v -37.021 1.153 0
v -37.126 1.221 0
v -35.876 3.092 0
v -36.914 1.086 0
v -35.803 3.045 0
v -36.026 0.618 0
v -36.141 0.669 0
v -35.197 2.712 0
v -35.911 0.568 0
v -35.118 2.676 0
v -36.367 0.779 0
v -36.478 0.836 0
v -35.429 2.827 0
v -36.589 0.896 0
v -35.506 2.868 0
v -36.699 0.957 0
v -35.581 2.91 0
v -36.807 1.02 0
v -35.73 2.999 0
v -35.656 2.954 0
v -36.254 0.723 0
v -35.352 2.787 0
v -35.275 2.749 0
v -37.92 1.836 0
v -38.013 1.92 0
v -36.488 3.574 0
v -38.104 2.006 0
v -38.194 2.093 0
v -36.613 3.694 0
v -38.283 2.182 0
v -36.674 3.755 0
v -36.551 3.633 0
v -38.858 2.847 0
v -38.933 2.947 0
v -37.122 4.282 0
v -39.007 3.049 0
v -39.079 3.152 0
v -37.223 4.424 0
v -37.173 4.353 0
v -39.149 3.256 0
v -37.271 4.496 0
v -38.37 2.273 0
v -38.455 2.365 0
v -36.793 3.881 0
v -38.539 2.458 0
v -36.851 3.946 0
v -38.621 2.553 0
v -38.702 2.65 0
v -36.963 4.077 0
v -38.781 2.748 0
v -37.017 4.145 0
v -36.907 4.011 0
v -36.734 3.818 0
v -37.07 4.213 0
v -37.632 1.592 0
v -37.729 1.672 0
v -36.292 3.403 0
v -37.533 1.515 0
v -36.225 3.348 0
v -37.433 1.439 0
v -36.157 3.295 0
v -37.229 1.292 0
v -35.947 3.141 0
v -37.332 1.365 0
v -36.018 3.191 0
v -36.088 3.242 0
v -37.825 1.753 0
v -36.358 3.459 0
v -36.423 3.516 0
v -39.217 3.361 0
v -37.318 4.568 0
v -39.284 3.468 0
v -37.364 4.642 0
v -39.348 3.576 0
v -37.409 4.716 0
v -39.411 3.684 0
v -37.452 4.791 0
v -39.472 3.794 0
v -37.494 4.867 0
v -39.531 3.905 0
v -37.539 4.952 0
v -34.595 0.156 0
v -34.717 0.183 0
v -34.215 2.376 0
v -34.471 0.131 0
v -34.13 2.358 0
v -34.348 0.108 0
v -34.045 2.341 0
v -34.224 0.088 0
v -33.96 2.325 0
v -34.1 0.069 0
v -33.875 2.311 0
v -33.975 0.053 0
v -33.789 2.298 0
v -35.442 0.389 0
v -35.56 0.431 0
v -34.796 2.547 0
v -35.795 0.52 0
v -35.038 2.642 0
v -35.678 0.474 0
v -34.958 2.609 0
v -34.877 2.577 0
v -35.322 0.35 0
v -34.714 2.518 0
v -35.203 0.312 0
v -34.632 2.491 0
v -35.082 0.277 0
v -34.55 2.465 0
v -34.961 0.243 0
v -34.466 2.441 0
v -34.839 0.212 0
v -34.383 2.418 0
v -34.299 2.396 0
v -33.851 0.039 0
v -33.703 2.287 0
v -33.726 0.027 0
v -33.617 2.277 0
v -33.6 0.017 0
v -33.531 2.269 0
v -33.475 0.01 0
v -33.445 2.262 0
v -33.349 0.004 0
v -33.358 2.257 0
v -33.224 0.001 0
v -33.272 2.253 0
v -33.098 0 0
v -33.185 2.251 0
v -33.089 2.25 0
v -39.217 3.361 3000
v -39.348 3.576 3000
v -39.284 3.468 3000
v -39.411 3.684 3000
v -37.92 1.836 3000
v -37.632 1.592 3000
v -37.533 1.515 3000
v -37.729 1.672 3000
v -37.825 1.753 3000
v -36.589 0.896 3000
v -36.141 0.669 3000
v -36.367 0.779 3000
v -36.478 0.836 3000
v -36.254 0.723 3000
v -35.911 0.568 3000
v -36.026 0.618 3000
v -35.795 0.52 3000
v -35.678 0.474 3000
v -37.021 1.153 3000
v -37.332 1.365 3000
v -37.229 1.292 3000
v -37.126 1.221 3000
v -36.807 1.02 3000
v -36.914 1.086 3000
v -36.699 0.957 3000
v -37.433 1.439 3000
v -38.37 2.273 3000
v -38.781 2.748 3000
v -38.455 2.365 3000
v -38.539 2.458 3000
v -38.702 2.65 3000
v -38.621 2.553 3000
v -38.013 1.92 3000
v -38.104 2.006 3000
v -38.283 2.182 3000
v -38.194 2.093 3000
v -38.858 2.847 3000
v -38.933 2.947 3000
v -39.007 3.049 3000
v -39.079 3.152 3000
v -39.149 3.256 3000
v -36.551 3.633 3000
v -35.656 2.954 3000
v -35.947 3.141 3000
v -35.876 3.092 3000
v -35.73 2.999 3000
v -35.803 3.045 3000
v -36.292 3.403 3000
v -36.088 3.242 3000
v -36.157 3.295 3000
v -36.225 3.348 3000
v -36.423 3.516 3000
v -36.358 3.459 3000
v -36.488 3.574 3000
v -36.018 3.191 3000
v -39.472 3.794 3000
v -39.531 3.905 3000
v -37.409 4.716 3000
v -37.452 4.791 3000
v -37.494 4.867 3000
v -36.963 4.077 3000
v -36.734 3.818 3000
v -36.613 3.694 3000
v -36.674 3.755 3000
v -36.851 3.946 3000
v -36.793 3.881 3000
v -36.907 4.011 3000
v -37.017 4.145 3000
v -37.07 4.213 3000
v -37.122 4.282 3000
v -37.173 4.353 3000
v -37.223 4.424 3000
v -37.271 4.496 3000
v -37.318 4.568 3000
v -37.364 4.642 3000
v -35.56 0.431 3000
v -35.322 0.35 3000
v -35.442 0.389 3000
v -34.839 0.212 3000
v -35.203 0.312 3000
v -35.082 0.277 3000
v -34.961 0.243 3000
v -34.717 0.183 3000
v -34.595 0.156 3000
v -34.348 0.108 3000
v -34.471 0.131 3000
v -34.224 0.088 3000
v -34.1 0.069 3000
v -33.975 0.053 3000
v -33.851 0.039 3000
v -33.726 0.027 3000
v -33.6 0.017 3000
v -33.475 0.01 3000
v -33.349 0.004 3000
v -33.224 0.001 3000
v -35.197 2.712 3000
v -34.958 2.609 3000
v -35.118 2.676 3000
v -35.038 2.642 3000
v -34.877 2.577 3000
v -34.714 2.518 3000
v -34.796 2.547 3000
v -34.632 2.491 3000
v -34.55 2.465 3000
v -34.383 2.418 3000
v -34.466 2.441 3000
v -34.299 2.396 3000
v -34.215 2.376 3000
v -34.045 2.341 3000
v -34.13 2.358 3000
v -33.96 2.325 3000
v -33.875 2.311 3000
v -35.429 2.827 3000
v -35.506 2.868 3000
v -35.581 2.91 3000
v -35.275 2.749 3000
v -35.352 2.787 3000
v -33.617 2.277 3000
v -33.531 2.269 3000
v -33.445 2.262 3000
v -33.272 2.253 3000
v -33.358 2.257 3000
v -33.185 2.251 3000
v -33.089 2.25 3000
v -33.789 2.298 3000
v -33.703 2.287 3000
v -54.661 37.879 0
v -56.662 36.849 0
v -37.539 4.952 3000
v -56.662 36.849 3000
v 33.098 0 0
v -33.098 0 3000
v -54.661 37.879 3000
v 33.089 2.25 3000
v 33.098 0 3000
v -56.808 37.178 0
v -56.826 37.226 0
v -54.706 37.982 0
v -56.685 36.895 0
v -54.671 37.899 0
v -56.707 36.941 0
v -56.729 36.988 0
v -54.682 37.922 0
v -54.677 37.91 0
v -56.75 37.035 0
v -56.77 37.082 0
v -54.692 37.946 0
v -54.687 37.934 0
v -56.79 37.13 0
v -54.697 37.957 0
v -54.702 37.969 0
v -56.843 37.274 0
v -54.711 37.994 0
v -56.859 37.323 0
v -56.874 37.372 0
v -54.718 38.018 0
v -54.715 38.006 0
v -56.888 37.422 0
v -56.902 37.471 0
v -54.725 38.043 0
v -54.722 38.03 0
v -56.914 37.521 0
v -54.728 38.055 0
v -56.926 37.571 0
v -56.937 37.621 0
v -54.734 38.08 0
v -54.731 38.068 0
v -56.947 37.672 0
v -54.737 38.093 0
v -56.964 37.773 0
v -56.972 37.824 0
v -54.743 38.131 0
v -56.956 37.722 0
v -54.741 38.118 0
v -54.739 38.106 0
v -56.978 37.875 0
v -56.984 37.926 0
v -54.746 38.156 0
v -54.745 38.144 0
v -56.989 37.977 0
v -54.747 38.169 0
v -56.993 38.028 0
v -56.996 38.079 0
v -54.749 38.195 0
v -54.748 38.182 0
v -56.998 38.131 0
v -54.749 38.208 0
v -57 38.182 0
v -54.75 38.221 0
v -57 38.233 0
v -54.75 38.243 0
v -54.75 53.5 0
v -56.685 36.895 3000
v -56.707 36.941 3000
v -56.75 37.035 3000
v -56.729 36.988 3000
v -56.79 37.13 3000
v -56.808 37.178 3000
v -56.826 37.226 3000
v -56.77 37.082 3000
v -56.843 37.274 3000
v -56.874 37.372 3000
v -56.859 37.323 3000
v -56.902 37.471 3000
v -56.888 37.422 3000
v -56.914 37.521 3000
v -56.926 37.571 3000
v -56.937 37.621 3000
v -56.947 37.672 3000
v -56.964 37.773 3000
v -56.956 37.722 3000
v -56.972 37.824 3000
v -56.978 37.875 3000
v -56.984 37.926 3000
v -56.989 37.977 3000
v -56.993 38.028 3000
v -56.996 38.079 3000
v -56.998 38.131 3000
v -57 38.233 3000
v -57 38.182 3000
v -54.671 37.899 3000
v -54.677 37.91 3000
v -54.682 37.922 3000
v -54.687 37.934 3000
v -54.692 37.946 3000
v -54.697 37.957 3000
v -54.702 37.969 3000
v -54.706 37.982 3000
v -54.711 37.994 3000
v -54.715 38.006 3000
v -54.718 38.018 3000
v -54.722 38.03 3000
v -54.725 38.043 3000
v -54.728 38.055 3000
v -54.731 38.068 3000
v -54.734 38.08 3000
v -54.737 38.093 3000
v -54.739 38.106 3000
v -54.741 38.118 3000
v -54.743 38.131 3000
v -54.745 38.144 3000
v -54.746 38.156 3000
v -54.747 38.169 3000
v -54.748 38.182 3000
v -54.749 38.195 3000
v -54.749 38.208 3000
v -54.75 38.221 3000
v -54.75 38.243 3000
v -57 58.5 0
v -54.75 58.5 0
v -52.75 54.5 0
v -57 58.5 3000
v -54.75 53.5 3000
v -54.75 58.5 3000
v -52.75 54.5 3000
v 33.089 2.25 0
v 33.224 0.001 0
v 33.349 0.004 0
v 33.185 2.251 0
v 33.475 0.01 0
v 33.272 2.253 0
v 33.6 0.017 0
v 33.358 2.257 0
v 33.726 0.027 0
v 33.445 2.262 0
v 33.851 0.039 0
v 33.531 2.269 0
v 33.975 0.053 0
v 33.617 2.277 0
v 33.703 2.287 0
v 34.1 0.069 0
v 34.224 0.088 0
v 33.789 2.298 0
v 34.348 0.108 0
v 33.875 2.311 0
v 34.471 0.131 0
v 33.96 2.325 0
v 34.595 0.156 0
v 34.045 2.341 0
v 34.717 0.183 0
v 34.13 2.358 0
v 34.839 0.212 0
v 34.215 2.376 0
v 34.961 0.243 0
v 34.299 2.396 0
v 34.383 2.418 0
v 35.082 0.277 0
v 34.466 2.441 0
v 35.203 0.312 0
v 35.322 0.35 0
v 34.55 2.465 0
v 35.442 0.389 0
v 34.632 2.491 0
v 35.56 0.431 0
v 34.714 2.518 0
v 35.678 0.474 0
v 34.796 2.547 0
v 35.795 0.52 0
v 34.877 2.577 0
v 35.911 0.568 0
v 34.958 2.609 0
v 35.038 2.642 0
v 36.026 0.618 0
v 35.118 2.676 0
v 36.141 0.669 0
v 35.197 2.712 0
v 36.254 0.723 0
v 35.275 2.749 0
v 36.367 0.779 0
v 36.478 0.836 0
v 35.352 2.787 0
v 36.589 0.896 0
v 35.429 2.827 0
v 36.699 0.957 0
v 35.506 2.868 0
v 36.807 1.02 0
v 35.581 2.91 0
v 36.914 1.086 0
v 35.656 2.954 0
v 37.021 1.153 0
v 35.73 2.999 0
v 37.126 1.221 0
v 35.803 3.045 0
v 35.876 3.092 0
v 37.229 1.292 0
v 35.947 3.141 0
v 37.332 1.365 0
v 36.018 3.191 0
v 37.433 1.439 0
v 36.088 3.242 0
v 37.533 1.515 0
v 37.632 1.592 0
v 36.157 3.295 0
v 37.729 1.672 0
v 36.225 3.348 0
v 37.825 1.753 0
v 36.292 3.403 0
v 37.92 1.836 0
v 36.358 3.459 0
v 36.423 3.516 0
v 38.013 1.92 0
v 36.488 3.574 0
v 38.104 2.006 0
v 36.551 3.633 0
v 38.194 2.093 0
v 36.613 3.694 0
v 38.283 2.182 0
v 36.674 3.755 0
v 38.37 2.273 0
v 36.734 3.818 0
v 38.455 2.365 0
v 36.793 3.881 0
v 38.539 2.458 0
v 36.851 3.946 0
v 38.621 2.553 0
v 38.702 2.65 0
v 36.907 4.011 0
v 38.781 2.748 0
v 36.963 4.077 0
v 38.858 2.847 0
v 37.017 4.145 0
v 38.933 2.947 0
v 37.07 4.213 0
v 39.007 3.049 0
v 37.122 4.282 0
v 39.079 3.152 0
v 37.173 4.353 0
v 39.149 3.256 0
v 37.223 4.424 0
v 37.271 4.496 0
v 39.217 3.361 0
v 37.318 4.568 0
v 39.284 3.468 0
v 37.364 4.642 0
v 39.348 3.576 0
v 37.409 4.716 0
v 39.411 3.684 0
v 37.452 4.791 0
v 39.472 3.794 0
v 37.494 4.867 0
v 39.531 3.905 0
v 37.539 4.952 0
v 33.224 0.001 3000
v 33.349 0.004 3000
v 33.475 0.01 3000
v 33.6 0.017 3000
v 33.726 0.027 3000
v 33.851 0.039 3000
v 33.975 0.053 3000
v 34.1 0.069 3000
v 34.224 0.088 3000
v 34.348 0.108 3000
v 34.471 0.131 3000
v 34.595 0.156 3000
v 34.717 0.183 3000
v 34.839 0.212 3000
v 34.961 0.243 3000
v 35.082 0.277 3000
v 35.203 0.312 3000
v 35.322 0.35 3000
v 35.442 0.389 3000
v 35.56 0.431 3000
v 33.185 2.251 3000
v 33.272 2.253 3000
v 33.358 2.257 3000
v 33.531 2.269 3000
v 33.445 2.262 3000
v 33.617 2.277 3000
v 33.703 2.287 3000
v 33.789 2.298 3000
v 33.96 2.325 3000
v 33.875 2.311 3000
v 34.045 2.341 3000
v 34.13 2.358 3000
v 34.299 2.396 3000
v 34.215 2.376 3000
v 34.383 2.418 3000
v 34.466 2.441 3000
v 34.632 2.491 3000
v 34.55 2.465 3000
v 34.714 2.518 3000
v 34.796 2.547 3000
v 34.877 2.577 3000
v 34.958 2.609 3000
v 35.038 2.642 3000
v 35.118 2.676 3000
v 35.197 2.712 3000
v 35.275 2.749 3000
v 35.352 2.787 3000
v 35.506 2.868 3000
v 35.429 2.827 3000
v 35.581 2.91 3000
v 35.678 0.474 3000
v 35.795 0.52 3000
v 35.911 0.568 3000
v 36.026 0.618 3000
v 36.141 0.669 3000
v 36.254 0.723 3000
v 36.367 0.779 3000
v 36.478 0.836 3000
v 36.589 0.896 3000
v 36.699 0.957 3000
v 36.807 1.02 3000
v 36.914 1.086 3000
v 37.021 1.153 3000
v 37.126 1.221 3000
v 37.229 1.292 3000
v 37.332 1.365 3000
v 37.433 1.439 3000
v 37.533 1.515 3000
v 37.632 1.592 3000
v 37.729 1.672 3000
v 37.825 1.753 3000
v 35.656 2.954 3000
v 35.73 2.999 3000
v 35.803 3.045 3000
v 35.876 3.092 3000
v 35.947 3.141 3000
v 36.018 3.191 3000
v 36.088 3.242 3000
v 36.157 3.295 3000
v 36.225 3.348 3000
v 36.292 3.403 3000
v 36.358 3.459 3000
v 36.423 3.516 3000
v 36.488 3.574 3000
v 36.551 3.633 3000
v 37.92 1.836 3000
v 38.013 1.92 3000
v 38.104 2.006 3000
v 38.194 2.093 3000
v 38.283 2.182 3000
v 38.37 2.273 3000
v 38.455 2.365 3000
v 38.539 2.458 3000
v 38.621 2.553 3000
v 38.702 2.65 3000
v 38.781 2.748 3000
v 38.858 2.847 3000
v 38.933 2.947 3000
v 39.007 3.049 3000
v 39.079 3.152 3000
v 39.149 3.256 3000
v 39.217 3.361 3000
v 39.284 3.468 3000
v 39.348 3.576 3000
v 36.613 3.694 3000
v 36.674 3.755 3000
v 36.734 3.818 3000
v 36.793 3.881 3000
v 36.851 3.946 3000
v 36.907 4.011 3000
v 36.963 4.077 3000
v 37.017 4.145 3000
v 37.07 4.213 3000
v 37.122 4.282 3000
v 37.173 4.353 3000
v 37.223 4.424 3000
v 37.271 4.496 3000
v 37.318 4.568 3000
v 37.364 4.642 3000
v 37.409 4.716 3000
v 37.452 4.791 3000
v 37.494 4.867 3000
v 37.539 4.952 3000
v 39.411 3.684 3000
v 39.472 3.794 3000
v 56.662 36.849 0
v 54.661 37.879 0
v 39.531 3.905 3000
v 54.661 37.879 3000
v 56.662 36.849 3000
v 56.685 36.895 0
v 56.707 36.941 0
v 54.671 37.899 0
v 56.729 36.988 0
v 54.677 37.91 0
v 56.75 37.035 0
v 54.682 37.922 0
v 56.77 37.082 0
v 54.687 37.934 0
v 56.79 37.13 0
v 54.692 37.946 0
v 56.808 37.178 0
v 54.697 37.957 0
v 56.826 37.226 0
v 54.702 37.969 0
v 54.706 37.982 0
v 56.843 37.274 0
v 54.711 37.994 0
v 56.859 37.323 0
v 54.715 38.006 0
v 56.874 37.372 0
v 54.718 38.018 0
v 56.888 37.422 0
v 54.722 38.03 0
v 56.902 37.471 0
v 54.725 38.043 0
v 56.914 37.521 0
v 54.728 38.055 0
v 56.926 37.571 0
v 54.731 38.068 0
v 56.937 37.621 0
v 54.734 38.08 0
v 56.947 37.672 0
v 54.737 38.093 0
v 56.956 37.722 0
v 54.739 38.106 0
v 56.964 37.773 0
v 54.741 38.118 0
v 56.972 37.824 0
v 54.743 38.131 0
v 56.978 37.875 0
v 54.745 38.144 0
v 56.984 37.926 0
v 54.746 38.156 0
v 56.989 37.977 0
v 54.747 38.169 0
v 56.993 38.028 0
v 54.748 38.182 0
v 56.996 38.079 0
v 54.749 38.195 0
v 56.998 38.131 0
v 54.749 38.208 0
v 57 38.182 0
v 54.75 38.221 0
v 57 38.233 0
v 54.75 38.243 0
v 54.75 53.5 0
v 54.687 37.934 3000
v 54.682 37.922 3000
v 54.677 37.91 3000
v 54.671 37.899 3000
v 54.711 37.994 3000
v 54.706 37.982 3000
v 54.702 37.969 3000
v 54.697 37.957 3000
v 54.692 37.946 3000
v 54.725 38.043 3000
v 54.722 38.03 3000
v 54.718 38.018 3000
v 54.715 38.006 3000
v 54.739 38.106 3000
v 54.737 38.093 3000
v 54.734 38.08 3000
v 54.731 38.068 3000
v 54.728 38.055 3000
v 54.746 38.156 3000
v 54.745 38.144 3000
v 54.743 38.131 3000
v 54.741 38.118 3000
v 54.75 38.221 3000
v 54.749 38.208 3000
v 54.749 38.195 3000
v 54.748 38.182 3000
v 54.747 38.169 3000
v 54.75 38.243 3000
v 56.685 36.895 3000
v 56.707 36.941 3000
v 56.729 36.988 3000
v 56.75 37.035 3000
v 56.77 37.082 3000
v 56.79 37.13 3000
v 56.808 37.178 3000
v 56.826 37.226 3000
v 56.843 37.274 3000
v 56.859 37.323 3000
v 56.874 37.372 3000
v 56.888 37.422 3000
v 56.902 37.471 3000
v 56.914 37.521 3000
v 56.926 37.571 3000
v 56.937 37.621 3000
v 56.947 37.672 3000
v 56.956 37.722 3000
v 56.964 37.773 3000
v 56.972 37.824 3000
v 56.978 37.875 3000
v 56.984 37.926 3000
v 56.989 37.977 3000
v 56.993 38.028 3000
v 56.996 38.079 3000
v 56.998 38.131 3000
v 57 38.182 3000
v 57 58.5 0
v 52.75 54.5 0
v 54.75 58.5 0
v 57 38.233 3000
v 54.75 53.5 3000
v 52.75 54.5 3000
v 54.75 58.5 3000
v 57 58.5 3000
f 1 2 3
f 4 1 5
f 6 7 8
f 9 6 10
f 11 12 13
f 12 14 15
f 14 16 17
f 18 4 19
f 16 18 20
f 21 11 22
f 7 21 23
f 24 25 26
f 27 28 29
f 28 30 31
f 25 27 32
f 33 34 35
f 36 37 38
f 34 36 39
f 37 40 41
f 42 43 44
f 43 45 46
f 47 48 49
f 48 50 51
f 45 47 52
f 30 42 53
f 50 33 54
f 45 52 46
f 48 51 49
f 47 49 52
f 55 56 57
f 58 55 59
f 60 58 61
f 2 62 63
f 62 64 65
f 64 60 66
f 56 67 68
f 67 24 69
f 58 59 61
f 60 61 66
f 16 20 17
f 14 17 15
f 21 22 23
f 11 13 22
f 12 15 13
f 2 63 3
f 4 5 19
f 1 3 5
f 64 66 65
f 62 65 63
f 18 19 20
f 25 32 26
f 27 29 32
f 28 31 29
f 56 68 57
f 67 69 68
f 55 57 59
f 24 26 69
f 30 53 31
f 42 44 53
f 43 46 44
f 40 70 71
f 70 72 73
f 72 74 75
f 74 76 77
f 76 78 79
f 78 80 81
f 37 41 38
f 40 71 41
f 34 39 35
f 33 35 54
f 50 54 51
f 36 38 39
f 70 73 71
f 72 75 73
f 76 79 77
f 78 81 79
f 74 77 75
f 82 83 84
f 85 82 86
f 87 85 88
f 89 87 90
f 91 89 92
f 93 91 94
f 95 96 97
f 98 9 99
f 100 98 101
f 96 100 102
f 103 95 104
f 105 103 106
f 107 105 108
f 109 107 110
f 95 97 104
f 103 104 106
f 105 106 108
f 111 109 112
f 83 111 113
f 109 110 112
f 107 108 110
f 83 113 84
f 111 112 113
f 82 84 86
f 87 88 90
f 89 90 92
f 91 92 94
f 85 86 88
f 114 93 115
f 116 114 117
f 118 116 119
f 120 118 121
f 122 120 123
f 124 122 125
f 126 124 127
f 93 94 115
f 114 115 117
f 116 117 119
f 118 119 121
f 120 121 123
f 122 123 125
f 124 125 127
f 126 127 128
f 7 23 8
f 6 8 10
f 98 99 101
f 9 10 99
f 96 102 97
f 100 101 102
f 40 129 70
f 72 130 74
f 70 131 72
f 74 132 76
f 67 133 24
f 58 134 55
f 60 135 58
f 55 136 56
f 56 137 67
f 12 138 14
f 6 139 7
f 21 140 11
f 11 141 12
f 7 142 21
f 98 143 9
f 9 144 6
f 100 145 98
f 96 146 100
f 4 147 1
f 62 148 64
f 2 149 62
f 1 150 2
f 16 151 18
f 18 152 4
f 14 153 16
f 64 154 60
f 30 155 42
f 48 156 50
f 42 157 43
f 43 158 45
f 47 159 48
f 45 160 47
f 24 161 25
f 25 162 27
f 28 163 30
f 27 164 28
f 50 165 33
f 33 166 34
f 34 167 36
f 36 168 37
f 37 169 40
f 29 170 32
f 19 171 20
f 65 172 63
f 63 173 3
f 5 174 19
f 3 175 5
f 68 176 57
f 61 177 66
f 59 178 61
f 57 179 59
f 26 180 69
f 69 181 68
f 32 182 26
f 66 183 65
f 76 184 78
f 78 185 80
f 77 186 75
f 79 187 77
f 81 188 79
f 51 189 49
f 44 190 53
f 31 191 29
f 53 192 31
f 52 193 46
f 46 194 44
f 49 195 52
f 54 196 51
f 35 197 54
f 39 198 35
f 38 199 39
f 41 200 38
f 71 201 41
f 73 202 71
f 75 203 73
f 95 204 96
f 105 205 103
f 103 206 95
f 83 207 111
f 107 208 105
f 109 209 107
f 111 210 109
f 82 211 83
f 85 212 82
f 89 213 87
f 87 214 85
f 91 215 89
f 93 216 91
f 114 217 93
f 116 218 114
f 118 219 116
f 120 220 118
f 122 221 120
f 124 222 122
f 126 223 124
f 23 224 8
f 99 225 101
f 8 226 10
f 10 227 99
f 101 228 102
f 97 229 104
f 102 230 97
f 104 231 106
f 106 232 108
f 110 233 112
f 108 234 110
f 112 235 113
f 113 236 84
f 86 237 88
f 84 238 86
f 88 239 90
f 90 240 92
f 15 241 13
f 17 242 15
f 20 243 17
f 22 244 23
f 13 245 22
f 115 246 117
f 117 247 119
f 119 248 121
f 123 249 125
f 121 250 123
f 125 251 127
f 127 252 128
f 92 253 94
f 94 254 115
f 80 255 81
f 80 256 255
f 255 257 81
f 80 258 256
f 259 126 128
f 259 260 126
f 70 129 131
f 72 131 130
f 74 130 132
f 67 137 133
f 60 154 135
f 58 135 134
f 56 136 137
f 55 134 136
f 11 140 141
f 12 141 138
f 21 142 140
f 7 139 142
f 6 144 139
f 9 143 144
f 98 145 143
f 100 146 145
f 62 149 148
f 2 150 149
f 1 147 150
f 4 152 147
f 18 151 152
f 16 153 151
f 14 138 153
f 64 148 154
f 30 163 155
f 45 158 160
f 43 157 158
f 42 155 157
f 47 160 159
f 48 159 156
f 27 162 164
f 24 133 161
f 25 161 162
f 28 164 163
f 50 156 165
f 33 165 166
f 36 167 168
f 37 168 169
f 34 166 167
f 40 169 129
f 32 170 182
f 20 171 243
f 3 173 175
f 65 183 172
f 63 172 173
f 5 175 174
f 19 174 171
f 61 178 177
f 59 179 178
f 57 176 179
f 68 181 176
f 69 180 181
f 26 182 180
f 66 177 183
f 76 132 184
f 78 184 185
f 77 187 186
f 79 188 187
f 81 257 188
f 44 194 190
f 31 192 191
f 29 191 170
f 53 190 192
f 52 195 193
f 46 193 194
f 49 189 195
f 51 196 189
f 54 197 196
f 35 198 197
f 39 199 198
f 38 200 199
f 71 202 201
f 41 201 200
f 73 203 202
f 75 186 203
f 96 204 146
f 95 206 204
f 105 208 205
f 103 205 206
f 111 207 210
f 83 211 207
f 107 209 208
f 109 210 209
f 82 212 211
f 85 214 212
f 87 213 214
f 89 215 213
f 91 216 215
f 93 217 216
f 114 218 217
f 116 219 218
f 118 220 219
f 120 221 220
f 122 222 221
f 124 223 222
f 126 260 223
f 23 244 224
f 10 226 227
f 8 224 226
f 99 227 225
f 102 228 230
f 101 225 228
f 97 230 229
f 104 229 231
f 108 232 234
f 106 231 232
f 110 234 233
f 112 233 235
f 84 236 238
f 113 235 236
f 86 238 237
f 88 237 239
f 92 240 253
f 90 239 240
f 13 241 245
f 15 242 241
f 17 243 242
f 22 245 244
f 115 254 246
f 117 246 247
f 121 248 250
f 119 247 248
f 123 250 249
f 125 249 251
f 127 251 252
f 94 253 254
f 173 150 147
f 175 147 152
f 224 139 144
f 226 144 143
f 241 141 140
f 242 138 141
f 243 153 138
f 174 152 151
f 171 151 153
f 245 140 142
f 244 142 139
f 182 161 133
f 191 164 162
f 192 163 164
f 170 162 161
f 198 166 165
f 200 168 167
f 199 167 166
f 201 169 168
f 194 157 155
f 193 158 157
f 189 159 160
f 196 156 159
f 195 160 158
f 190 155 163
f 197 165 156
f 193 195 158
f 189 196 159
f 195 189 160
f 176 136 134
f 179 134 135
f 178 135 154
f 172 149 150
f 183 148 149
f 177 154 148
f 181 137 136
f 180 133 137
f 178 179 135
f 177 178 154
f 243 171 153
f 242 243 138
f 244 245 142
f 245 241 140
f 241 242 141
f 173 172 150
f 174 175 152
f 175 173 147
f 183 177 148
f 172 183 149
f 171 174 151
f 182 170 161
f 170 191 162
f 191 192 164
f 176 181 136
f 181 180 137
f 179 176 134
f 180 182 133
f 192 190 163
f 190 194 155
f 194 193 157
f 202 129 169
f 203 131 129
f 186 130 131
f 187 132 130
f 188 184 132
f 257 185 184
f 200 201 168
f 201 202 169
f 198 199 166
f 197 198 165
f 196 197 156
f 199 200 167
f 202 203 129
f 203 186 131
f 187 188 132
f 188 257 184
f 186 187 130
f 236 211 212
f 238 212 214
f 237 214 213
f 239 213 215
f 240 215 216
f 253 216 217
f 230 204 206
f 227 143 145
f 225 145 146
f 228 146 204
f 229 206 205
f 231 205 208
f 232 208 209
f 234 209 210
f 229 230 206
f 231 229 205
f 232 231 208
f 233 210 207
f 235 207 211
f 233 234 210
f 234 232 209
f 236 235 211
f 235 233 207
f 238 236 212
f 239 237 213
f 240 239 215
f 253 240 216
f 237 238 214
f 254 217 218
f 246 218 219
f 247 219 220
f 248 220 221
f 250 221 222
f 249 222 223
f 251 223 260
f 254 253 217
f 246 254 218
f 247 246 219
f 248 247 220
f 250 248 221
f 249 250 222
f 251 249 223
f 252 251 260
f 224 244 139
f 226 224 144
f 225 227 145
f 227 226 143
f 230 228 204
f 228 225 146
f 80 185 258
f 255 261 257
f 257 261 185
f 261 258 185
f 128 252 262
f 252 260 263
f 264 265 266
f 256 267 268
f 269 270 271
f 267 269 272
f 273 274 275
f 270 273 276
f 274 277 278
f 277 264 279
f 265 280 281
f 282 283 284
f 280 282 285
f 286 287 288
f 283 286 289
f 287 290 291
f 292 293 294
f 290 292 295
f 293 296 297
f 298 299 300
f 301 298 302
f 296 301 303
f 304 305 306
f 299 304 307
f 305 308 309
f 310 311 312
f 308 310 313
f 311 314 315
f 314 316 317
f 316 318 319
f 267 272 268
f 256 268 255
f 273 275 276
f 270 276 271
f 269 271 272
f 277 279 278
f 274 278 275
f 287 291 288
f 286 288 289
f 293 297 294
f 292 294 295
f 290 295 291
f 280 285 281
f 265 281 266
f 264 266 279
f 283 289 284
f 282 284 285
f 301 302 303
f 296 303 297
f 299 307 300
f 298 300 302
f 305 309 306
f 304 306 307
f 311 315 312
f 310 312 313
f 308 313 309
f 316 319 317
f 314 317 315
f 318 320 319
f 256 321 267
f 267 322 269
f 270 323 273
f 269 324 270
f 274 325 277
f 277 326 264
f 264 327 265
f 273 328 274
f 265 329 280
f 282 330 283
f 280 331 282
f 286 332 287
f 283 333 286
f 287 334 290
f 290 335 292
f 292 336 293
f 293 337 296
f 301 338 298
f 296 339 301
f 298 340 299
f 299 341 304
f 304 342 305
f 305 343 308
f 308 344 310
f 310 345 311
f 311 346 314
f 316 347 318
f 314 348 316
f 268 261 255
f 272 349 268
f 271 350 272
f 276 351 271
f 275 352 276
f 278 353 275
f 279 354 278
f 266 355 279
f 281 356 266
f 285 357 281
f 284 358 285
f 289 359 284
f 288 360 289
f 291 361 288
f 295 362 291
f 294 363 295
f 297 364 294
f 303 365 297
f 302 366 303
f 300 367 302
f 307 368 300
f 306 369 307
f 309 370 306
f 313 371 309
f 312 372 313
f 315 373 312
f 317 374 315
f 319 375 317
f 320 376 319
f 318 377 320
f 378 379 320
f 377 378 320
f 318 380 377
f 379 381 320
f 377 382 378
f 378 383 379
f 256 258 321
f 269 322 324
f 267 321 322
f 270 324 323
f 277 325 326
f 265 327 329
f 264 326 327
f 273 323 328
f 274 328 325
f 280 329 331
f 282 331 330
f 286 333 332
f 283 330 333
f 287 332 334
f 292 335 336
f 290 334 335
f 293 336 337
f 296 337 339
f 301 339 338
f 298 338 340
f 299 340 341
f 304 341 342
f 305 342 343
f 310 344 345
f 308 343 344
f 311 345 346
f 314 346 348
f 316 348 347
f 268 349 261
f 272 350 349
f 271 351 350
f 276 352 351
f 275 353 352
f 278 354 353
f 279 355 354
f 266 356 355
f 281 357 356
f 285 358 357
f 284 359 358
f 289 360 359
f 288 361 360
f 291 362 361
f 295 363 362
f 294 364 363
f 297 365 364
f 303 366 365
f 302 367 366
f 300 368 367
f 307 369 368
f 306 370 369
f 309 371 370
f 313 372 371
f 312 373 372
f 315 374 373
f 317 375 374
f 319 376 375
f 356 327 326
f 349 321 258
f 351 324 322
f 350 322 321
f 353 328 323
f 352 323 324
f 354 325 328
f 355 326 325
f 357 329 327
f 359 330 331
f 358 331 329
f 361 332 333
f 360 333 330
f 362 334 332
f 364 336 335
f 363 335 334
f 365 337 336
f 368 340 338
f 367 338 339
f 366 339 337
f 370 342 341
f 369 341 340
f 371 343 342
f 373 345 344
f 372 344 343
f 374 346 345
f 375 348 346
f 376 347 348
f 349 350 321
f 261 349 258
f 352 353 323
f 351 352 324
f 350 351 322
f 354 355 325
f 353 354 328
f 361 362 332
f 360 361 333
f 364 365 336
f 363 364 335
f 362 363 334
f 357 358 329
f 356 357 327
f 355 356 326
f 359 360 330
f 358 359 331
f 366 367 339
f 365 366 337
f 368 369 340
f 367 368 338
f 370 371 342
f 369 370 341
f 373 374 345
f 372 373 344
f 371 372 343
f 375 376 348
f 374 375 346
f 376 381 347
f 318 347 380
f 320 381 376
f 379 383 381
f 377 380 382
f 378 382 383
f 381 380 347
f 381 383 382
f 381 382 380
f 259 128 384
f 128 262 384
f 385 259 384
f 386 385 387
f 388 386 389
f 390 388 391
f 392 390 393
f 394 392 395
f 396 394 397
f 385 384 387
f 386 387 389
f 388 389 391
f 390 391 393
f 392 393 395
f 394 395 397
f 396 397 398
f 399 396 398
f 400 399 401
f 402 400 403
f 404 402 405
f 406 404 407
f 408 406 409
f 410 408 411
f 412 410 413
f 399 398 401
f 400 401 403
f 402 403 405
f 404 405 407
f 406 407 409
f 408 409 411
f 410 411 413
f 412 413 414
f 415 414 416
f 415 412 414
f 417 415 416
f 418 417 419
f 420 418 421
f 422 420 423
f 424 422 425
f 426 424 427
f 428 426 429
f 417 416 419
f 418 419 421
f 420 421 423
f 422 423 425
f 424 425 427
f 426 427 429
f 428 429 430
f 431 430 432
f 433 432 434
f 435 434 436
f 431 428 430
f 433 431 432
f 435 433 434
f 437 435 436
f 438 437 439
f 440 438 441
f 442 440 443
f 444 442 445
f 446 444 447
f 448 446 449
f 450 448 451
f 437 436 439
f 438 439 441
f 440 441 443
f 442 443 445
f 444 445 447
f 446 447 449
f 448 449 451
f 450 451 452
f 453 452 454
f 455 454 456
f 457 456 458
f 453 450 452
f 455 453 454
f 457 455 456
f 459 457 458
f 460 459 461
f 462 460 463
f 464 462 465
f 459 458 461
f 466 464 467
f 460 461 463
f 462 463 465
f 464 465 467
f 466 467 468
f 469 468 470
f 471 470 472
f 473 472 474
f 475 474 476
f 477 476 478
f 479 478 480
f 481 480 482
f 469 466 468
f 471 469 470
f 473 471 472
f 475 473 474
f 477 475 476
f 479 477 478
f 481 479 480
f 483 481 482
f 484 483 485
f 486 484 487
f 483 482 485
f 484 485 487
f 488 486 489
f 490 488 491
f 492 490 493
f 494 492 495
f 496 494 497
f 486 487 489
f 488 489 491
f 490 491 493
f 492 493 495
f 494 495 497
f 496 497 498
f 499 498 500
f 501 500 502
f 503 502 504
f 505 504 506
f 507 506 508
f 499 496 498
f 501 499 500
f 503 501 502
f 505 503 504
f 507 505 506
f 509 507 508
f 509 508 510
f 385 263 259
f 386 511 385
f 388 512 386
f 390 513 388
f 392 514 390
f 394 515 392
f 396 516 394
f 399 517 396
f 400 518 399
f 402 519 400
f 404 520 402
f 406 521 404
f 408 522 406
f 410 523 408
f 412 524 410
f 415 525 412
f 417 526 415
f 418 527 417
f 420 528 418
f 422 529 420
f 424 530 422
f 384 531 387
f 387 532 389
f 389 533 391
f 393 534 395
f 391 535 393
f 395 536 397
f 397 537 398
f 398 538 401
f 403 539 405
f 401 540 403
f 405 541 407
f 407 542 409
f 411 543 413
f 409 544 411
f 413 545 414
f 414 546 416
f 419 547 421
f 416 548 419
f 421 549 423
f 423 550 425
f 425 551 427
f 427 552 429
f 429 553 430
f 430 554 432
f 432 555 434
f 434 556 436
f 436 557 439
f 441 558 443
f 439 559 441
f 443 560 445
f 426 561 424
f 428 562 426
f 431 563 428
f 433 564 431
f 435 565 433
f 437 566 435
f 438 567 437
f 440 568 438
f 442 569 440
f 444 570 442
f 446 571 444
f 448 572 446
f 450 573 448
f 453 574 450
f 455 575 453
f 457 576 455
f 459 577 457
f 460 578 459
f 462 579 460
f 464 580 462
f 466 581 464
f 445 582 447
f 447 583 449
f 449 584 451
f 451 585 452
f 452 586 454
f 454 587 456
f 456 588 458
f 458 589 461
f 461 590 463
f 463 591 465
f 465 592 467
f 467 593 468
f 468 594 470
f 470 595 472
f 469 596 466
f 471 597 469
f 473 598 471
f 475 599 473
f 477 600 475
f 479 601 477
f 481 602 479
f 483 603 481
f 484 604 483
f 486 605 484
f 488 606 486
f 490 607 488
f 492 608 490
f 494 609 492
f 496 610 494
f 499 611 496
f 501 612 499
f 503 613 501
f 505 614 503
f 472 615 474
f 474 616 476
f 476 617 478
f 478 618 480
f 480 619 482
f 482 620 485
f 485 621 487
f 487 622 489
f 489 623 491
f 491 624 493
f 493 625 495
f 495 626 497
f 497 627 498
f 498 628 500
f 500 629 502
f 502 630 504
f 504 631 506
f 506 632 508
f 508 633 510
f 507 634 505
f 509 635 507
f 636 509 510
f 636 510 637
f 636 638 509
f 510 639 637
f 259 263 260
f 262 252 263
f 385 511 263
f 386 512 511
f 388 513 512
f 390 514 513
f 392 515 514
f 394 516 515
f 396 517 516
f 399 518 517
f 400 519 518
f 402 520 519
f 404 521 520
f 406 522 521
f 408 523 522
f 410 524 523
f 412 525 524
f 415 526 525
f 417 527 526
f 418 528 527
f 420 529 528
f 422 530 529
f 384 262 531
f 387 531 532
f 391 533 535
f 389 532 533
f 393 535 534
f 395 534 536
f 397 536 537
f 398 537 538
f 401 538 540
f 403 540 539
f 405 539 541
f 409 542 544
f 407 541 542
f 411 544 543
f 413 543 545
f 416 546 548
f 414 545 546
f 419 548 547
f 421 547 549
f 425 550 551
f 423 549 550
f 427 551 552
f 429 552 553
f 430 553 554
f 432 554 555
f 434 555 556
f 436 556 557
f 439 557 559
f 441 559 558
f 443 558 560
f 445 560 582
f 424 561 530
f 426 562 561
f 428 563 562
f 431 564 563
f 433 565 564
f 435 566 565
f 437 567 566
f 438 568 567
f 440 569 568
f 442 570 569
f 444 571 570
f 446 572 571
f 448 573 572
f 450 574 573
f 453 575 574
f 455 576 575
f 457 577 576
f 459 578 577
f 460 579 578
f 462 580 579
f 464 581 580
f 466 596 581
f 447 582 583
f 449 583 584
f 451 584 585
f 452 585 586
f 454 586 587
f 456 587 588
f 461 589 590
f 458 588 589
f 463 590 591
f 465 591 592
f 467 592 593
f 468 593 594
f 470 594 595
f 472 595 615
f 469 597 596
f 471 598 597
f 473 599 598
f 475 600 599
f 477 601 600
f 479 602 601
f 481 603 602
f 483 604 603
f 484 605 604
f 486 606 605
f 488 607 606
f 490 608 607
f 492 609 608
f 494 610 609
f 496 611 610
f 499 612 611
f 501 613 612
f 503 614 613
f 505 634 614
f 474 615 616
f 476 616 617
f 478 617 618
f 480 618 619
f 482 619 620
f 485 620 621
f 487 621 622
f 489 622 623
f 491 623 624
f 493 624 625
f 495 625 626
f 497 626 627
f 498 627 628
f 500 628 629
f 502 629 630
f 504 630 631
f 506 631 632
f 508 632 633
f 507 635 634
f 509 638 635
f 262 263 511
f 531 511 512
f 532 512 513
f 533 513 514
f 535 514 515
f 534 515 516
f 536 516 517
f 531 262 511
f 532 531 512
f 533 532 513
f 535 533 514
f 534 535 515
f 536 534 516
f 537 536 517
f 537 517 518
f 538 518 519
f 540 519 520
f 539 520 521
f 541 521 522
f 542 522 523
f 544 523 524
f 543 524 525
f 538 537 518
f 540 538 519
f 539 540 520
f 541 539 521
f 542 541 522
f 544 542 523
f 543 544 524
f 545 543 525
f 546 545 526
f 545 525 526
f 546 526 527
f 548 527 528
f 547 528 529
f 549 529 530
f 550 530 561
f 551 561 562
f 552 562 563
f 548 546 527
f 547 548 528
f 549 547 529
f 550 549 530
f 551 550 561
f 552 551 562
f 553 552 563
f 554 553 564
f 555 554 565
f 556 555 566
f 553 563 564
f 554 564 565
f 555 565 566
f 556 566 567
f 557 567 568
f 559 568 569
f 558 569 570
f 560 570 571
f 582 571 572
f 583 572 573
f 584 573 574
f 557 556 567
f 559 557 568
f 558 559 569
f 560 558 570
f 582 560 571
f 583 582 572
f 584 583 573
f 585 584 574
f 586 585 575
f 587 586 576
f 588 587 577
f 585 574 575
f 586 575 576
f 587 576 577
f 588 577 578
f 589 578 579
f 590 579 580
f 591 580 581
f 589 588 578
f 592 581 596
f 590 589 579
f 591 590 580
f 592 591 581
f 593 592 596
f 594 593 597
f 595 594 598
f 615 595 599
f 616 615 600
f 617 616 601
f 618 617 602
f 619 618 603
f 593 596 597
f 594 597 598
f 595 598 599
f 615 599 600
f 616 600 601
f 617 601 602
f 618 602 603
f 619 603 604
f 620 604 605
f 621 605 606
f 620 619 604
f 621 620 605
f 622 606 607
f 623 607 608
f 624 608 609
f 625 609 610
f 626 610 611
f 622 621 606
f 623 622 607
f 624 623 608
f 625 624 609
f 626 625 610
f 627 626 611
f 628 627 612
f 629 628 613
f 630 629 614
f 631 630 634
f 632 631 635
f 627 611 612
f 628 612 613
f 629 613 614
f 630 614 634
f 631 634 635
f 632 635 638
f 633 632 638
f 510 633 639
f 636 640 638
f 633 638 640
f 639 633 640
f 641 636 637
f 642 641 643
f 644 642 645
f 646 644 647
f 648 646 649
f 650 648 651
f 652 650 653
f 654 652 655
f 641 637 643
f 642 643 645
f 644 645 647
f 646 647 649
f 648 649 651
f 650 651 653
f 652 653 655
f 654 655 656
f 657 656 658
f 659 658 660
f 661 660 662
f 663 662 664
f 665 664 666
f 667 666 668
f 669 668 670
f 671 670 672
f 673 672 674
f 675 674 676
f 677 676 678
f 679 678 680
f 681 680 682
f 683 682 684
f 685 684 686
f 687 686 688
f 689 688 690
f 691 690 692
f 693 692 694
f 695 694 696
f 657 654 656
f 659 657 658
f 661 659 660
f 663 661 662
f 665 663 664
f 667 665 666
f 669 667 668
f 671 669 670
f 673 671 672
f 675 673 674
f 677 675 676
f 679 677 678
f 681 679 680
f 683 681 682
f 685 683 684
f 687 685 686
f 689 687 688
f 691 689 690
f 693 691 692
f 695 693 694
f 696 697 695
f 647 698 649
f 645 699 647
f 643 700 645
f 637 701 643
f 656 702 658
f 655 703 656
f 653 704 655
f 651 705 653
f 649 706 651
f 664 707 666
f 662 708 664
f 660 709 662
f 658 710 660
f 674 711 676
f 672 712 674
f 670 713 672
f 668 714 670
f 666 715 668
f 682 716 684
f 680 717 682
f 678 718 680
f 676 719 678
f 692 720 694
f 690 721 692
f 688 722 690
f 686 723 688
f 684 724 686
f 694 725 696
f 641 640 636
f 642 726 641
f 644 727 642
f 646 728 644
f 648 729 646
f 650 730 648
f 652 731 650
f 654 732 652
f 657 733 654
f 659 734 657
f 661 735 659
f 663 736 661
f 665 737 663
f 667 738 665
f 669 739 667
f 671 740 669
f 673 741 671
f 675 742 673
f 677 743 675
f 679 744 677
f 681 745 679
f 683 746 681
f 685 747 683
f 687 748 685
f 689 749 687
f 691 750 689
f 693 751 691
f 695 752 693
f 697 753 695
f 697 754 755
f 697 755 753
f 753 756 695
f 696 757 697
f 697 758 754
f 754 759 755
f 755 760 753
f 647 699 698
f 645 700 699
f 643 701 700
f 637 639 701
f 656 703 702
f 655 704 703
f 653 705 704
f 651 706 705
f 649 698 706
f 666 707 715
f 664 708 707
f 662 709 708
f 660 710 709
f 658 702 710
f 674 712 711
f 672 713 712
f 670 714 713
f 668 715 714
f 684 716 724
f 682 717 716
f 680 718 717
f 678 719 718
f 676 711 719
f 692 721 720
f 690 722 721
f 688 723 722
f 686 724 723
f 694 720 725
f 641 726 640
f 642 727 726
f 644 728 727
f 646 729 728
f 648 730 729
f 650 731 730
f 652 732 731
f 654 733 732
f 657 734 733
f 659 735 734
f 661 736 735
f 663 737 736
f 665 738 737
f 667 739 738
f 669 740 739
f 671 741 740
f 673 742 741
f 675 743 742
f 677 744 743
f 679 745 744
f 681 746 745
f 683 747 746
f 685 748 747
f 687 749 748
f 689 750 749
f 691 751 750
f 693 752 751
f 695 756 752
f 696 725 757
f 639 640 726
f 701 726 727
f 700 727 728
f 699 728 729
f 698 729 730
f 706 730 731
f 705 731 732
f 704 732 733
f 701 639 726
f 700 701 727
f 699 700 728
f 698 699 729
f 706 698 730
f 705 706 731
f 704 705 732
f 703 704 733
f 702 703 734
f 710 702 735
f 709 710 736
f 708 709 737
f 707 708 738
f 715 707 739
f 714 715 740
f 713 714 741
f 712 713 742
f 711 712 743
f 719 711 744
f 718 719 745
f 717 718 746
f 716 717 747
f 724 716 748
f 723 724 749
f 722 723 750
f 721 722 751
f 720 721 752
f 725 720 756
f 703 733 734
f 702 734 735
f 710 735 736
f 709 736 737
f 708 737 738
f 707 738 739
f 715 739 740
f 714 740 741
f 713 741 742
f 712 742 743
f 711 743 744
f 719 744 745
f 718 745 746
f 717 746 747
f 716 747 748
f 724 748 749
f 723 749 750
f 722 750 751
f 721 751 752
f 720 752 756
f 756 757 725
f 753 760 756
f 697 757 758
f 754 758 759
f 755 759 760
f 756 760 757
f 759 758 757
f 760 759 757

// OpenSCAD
$fn = 50;

difference() {
	union() {
		linear_extrude(height = 3000.0) {
			polygon(points = [[56.9995601, 38.1820114], [56.9982404, 38.1306519], [56.9960415, 38.0793225], [56.9929638, 38.0280383], [56.9890084, 37.9768144], [56.9841763, 37.9256657], [56.978469, 37.8746072], [56.9718882, 37.823654], [56.9644358, 37.7728209], [56.956114, 37.7221229], [56.9469252, 37.6715749], [56.9368722, 37.6211916], [56.9259578, 37.5709879], [56.9141852, 37.5209784], [56.901558, 37.4711779], [56.8880798, 37.4216009], [56.8737546, 37.372262], [56.8585866, 37.3231757], [56.8425802, 37.2743563], [56.8257401, 37.2258182], [56.8080713, 37.1775755], [56.7895789, 37.1296426], [56.7702684, 37.0820333], [56.7501454, 37.0347617], [56.7292159, 36.9878416], [56.7074859, 36.9412868], [56.6849619, 36.895111], [56.6616504, 36.8493277], [39.5307002, 3.9051927], [39.4717998, 3.7942803], [39.4109872, 3.6844047], [39.3482805, 3.575599], [39.2836987, 3.4678957], [39.2172609, 3.3613272], [39.1489873, 3.2559255], [39.0788983, 3.1517221], [39.0070149, 3.0487484], [38.9333586, 2.9470352], [38.8579516, 2.8466131], [38.7808165, 2.7475122], [38.7019765, 2.6497622], [38.6214552, 2.5533924], [38.5392767, 2.4584319], [38.4554658, 2.3649089], [38.3700475, 2.2728517], [38.2830475, 2.1822879], [38.1944919, 2.0932445], [38.1044072, 2.0057484], [38.0128206, 1.9198257], [37.9197594, 1.8355024], [37.8252517, 1.7528035], [37.7293256, 1.6717541], [37.6320102, 1.5923783], [37.5333344, 1.5147001], [37.433328, 1.4387427], [37.3320209, 1.3645289], [37.2294436, 1.2920809], [37.1256268, 1.2214206], [37.0206017, 1.152569], [36.9143997, 1.085547], [36.8070528, 1.0203745], [36.6985931, 0.9570711], [36.5890533, 0.8956559], [36.478466, 0.8361472], [36.3668647, 0.778563], [36.2542826, 0.7229204], [36.1407537, 0.6692362], [36.0263119, 0.6175265], [35.9109917, 0.5678068], [35.7948275, 0.520092], [35.6778543, 0.4743964], [35.5601072, 0.4307338], [35.4416214, 0.3891172], [35.3224326, 0.3495592], [35.2025764, 0.3120716], [35.082089, 0.2766656], [34.9610063, 0.2433519], [34.8393648, 0.2121405], [34.7172009, 0.1830407], [34.5945513, 0.1560613], [34.4714528, 0.1312103], [34.3479423, 0.1084953], [34.2240569, 0.0879229], [34.0998338, 0.0694995], [33.9753101, 0.0532305], [33.8505234, 0.0391209], [33.725511, 0.0271747], [33.6003104, 0.0173958], [33.4749592, 0.0097868], [33.3494951, 0.0043502], [33.2239556, 0.0010876], [33.0983784, -0.0], [-33.0983784, -0.0], [-33.2239556, 0.0010876], [-33.3494951, 0.0043502], [-33.4749592, 0.0097868], [-33.6003104, 0.0173958], [-33.725511, 0.0271747], [-33.8505234, 0.0391209], [-33.9753101, 0.0532305], [-34.0998338, 0.0694995], [-34.2240569, 0.0879229], [-34.3479423, 0.1084953], [-34.4714528, 0.1312103], [-34.5945513, 0.1560613], [-34.7172009, 0.1830407], [-34.8393648, 0.2121405], [-34.9610063, 0.2433519], [-35.082089, 0.2766656], [-35.2025764, 0.3120716], [-35.3224326, 0.3495592], [-35.4416214, 0.3891172], [-35.5601072, 0.4307338], [-35.6778543, 0.4743964], [-35.7948275, 0.520092], [-35.9109917, 0.5678068], [-36.0263119, 0.6175265], [-36.1407537, 0.6692362], [-36.2542826, 0.7229204], [-36.3668647, 0.778563], [-36.478466, 0.8361472], [-36.5890533, 0.8956559], [-36.6985931, 0.9570711], [-36.8070528, 1.0203745], [-36.9143997, 1.085547], [-37.0206017, 1.152569], [-37.1256268, 1.2214206], [-37.2294436, 1.2920809], [-37.3320209, 1.3645289], [-37.433328, 1.4387427], [-37.5333344, 1.5147001], [-37.6320102, 1.5923783], [-37.7293256, 1.6717541], [-37.8252517, 1.7528035], [-37.9197594, 1.8355024], [-38.0128206, 1.9198257], [-38.1044072, 2.0057484], [-38.1944919, 2.0932445], [-38.2830475, 2.1822879], [-38.3700475, 2.2728517], [-38.4554658, 2.3649089], [-38.5392767, 2.4584319], [-38.6214552, 2.5533924], [-38.7019765, 2.6497622], [-38.7808165, 2.7475122], [-38.8579516, 2.8466131], [-38.9333586, 2.9470352], [-39.0070149, 3.0487484], [-39.0788983, 3.1517221], [-39.1489873, 3.2559255], [-39.2172609, 3.3613272], [-39.2836987, 3.4678957], [-39.3482805, 3.575599], [-39.4109872, 3.6844047], [-39.4717998, 3.7942803], [-39.5307002, 3.9051927], [-56.6616504, 36.8493277], [-56.6849619, 36.895111], [-56.7074859, 36.9412868], [-56.7292159, 36.9878416], [-56.7501454, 37.0347617], [-56.7702684, 37.0820333], [-56.7895789, 37.1296426], [-56.8080713, 37.1775755], [-56.8257401, 37.2258182], [-56.8425802, 37.2743563], [-56.8585866, 37.3231757], [-56.8737546, 37.372262], [-56.8880798, 37.4216009], [-56.901558, 37.4711779], [-56.9141852, 37.5209784], [-56.9259578, 37.5709879], [-56.9368722, 37.6211916], [-56.9469252, 37.6715749], [-56.956114, 37.7221229], [-56.9644358, 37.7728209], [-56.9718882, 37.823654], [-56.978469, 37.8746072], [-56.9841763, 37.9256657], [-56.9890084, 37.9768144], [-56.9929638, 38.0280383], [-56.9960415, 38.0793225], [-56.9982404, 38.1306519], [-56.9995601, 38.1820114], [-57.0, 38.2333859], [-57.0, 58.5], [-54.75, 58.5], [-52.75, 54.5], [-54.75, 53.5], [-54.75, 38.2430192], [-54.7498075, 38.2205437], [-54.7494777, 38.2077052], [-54.748928, 38.1948743], [-54.7481587, 38.1820547], [-54.7471699, 38.1692501], [-54.745962, 38.1564643], [-54.7445354, 38.1437011], [-54.7428903, 38.1309642], [-54.7410275, 38.1182573], [-54.7389472, 38.1055842], [-54.7366503, 38.0929486], [-54.7341373, 38.0803542], [-54.731409, 38.0678046], [-54.7284662, 38.0553036], [-54.7253097, 38.0428549], [-54.7219405, 38.030462], [-54.7183596, 38.0181286], [-54.714568, 38.0058584], [-54.7105669, 37.9936549], [-54.7063573, 37.9815217], [-54.7019406, 37.9694623], [-54.697318, 37.9574804], [-54.6924909, 37.9455794], [-54.6874607, 37.9337628], [-54.6822289, 37.9220341], [-54.676797, 37.9103967], [-54.6711666, 37.898854], [-54.6609683, 37.8788246], [-37.5389576, 4.951881], [-37.4937673, 4.8667852], [-37.4518282, 4.7910103], [-37.408583, 4.7159731], [-37.3640445, 4.6416962], [-37.3182262, 4.568202], [-37.2711417, 4.4955123], [-37.2228052, 4.4236492], [-37.1732313, 4.352634], [-37.1224347, 4.2824882], [-37.0704308, 4.2132327], [-37.0172351, 4.1448884], [-36.9628636, 4.0774757], [-36.9073326, 4.011015], [-36.8506587, 3.945526], [-36.792859, 3.8810285], [-36.7339509, 3.8175419], [-36.6739519, 3.7550851], [-36.6128801, 3.6936769], [-36.5507538, 3.6333358], [-36.4875917, 3.5740798], [-36.4234126, 3.5159267], [-36.358236, 3.458894], [-36.2920812, 3.4029988], [-36.2249682, 3.3482578], [-36.1569171, 3.2946875], [-36.0879483, 3.242304], [-36.0180826, 3.1911229], [-35.9473408, 3.1411596], [-35.8757442, 3.0924292], [-35.8033143, 3.0449462], [-35.7300728, 2.9987248], [-35.6560417, 2.9537791], [-35.5812432, 2.9101223], [-35.5056997, 2.8677677], [-35.429434, 2.8267279], [-35.3524688, 2.7870153], [-35.2748273, 2.7486418], [-35.1965328, 2.7116188], [-35.1176088, 2.6759575], [-35.0380789, 2.6416687], [-34.9579671, 2.6087625], [-34.8772973, 2.5772488], [-34.7960937, 2.5471372], [-34.7143808, 2.5184366], [-34.632183, 2.4911556], [-34.549525, 2.4653026], [-34.4664316, 2.4408851], [-34.3829277, 2.4179105], [-34.2990384, 2.3963857], [-34.2147889, 2.3763172], [-34.1302044, 2.357711], [-34.0453103, 2.3405727], [-33.9601321, 2.3249074], [-33.8746953, 2.3107199], [-33.7890256, 2.2980143], [-33.7031487, 2.2867945], [-33.6170903, 2.2770638], [-33.5308763, 2.2688253], [-33.4445326, 2.2620813], [-33.3580849, 2.2568338], [-33.2715594, 2.2530845], [-33.1849819, 2.2508345], [-33.0886348, 2.25], [33.0886348, 2.25], [33.1849819, 2.2508345], [33.2715594, 2.2530845], [33.3580849, 2.2568338], [33.4445326, 2.2620813], [33.5308763, 2.2688253], [33.6170903, 2.2770638], [33.7031487, 2.2867945], [33.7890256, 2.2980143], [33.8746953, 2.3107199], [33.9601321, 2.3249074], [34.0453103, 2.3405727], [34.1302044, 2.357711], [34.2147889, 2.3763172], [34.2990384, 2.3963857], [34.3829277, 2.4179105], [34.4664316, 2.4408851], [34.549525, 2.4653026], [34.632183, 2.4911556], [34.7143808, 2.5184366], [34.7960937, 2.5471372], [34.8772973, 2.5772488], [34.9579671, 2.6087625], [35.0380789, 2.6416687], [35.1176088, 2.6759575], [35.1965328, 2.7116188], [35.2748273, 2.7486418], [35.3524688, 2.7870153], [35.429434, 2.8267279], [35.5056997, 2.8677677], [35.5812432, 2.9101223], [35.6560417, 2.9537791], [35.7300728, 2.9987248], [35.8033143, 3.0449462], [35.8757442, 3.0924292], [35.9473408, 3.1411596], [36.0180826, 3.1911229], [36.0879483, 3.242304], [36.1569171, 3.2946875], [36.2249682, 3.3482578], [36.2920812, 3.4029988], [36.358236, 3.458894], [36.4234126, 3.5159267], [36.4875917, 3.5740798], [36.5507538, 3.6333358], [36.6128801, 3.6936769], [36.6739519, 3.7550851], [36.7339509, 3.8175419], [36.792859, 3.8810285], [36.8506587, 3.945526], [36.9073326, 4.011015], [36.9628636, 4.0774757], [37.0172351, 4.1448884], [37.0704308, 4.2132327], [37.1224347, 4.2824882], [37.1732313, 4.352634], [37.2228052, 4.4236492], [37.2711417, 4.4955123], [37.3182262, 4.568202], [37.3640445, 4.6416962], [37.408583, 4.7159731], [37.4518282, 4.7910103], [37.4937673, 4.8667852], [37.5389576, 4.951881], [54.6609683, 37.8788246], [54.6711666, 37.898854], [54.676797, 37.9103967], [54.6822289, 37.9220341], [54.6874607, 37.9337628], [54.6924909, 37.9455794], [54.697318, 37.9574804], [54.7019406, 37.9694623], [54.7063573, 37.9815217], [54.7105669, 37.9936549], [54.714568, 38.0058584], [54.7183596, 38.0181286], [54.7219405, 38.030462], [54.7253097, 38.0428549], [54.7284662, 38.0553036], [54.731409, 38.0678046], [54.7341373, 38.0803542], [54.7366503, 38.0929486], [54.7389472, 38.1055842], [54.7410275, 38.1182573], [54.7428903, 38.1309642], [54.7445354, 38.1437011], [54.745962, 38.1564643], [54.7471699, 38.1692501], [54.7481587, 38.1820547], [54.748928, 38.1948743], [54.7494777, 38.2077052], [54.7498075, 38.2205437], [54.75, 38.2430192], [54.75, 53.5], [52.75, 54.5], [54.75, 58.5], [57.0, 58.5], [57.0, 38.2333859]]);
		}
	}
	union();
}
